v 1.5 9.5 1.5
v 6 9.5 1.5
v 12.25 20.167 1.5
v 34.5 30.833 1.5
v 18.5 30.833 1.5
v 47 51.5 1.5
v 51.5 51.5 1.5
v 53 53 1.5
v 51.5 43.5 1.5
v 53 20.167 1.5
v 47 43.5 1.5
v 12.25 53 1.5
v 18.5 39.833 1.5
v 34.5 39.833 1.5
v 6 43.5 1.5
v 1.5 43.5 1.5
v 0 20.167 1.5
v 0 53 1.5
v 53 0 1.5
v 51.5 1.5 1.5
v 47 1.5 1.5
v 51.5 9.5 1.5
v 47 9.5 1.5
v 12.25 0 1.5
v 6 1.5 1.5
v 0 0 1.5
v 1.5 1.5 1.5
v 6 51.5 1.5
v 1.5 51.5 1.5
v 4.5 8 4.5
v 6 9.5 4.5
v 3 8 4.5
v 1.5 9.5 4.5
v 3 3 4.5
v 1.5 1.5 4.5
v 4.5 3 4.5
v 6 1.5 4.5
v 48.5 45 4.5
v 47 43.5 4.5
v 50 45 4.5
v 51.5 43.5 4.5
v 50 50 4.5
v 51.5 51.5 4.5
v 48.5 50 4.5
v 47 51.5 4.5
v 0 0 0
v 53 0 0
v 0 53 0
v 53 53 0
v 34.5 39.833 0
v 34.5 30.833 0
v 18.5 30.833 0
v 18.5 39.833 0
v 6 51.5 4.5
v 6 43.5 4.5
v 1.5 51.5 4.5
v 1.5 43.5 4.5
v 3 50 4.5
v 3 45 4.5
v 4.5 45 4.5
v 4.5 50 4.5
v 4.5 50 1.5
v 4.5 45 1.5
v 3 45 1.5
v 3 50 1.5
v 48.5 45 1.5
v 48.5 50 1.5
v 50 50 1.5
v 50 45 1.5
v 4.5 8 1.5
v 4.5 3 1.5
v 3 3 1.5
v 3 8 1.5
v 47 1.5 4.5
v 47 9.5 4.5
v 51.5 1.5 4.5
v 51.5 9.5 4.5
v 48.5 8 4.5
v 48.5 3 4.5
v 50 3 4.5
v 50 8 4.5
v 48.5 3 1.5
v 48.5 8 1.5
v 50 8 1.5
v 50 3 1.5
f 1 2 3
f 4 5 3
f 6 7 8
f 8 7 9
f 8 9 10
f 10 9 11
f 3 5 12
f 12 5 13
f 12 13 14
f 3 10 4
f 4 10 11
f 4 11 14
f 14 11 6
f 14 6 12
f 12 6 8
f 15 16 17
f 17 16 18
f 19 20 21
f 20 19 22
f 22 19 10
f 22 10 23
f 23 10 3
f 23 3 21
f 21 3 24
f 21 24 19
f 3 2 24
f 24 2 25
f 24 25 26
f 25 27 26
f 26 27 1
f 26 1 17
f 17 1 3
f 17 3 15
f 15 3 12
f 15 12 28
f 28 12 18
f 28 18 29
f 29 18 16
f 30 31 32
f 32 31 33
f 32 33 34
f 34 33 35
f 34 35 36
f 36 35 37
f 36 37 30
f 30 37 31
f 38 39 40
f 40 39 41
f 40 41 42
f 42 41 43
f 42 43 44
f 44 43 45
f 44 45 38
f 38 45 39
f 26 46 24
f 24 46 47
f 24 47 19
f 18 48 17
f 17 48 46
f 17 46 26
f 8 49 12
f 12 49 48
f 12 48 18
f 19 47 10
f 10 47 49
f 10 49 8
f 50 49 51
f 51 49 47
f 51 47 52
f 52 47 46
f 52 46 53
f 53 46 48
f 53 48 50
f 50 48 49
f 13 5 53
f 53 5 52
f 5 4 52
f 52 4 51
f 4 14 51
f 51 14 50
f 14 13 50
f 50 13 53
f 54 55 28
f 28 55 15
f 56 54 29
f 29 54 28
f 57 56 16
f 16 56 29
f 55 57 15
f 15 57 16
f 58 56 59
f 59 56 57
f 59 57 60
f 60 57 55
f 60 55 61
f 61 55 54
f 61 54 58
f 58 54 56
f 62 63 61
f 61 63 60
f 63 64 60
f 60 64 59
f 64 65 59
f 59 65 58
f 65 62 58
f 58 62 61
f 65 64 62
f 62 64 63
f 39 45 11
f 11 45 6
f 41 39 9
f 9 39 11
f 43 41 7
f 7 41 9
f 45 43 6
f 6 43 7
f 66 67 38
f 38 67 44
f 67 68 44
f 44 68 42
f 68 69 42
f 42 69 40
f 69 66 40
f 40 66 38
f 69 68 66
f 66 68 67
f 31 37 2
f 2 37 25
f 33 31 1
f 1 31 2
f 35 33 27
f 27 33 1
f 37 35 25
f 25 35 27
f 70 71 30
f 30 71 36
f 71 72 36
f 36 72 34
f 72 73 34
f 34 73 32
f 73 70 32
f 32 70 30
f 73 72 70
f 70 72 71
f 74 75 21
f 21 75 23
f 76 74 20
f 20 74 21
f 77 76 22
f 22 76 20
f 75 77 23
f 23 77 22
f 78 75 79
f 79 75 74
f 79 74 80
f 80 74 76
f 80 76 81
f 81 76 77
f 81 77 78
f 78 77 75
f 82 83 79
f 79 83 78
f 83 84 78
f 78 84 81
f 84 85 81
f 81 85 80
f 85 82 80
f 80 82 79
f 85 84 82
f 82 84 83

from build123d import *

# Parameters (mm, degrees)
SKETCH1_W               = 53
SKETCH1_H               = 53
BOSS_EXTRUDE1_DEPTH     = 1.5
SKETCH2_W               = 16
SKETCH2_H               = 9
CUT_EXTRUDE1_DEPTH      = 75.968326645
SKETCH3_W               = 4.5
SKETCH3_H               = 8
BOSS_EXTRUDE2_DEPTH     = 3
SKETCH4_W               = 1.5
SKETCH4_H               = 5.000000074
CUT_EXTRUDE2_DEPTH      = 3
MIRROR2_COPY_1_SKETCH_W = 4.5
MIRROR2_COPY_1_SKETCH_H = 8
MIRROR2_COPY_1_DEPTH    = 3
MIRROR2_COPY_2_SKETCH_W = 1.5
MIRROR2_COPY_2_SKETCH_H = 5.000000074
MIRROR2_COPY_2_DEPTH    = 3


with BuildPart() as part:
    # Sketch1 → Boss-Extrude1 (new body)
    with BuildSketch(Plane.XY.offset(1.5)):
        with Locations((26.5, 26.5)):
            Rectangle(SKETCH1_W, SKETCH1_H)
    extrude(amount=-BOSS_EXTRUDE1_DEPTH)

    # Sketch2 → Cut-Extrude1 (cut, through all)
    with BuildSketch(Plane(origin=(0, 0, 0), x_dir=(-1, 0, 0), z_dir=(0, 0, -1))):
        with Locations((-26.5, 35.333333333)):
            Rectangle(SKETCH2_W, SKETCH2_H)
    extrude(amount=-CUT_EXTRUDE1_DEPTH, mode=Mode.SUBTRACT)

    # Sketch3 → Boss-Extrude2 (add)
    with BuildSketch(Plane.XY.offset(1.5)):
        with Locations((3.75, 47.5)):
            Rectangle(SKETCH3_W, SKETCH3_H)
    boss_extrude2 = extrude(amount=BOSS_EXTRUDE2_DEPTH)

    # Sketch4 → Cut-Extrude2 (cut)
    with BuildSketch(Plane.XY.offset(4.5)):
        with Locations((3.75, 47.5)):
            Rectangle(SKETCH4_W, SKETCH4_H)
    cut_extrude2 = extrude(amount=-CUT_EXTRUDE2_DEPTH, mode=Mode.SUBTRACT)

    # Mirror1: Boss-Extrude2, Cut-Extrude2 across plane
    add(boss_extrude2.mirror(Plane.ZY.offset(-26.5)))
    add(cut_extrude2.mirror(Plane.ZY.offset(-26.5)), mode=Mode.SUBTRACT)

    # Mirror2: Boss-Extrude2, Cut-Extrude2 across plane
    add(boss_extrude2.mirror(Plane.ZX.offset(26.5)))
    add(cut_extrude2.mirror(Plane.ZX.offset(26.5)), mode=Mode.SUBTRACT)

    # Mirror2 copy 1 sketch → Mirror2 copy 1 (add)
    with BuildSketch(Plane(origin=(53, 53, 1.5), x_dir=(-1, 0, 0), z_dir=(0, 0, 1))):
        with Locations((3.75, 47.5)):
            Rectangle(MIRROR2_COPY_1_SKETCH_W, MIRROR2_COPY_1_SKETCH_H)
    extrude(amount=MIRROR2_COPY_1_DEPTH)

    # Mirror2 copy 2 sketch → Mirror2 copy 2 (cut)
    with BuildSketch(Plane(origin=(53, 53, 4.5), x_dir=(-1, 0, 0), z_dir=(0, 0, 1))):
        with Locations((3.75, 47.5)):
            Rectangle(MIRROR2_COPY_2_SKETCH_W, MIRROR2_COPY_2_SKETCH_H)
    extrude(amount=-MIRROR2_COPY_2_DEPTH, mode=Mode.SUBTRACT)


solid = part.part
